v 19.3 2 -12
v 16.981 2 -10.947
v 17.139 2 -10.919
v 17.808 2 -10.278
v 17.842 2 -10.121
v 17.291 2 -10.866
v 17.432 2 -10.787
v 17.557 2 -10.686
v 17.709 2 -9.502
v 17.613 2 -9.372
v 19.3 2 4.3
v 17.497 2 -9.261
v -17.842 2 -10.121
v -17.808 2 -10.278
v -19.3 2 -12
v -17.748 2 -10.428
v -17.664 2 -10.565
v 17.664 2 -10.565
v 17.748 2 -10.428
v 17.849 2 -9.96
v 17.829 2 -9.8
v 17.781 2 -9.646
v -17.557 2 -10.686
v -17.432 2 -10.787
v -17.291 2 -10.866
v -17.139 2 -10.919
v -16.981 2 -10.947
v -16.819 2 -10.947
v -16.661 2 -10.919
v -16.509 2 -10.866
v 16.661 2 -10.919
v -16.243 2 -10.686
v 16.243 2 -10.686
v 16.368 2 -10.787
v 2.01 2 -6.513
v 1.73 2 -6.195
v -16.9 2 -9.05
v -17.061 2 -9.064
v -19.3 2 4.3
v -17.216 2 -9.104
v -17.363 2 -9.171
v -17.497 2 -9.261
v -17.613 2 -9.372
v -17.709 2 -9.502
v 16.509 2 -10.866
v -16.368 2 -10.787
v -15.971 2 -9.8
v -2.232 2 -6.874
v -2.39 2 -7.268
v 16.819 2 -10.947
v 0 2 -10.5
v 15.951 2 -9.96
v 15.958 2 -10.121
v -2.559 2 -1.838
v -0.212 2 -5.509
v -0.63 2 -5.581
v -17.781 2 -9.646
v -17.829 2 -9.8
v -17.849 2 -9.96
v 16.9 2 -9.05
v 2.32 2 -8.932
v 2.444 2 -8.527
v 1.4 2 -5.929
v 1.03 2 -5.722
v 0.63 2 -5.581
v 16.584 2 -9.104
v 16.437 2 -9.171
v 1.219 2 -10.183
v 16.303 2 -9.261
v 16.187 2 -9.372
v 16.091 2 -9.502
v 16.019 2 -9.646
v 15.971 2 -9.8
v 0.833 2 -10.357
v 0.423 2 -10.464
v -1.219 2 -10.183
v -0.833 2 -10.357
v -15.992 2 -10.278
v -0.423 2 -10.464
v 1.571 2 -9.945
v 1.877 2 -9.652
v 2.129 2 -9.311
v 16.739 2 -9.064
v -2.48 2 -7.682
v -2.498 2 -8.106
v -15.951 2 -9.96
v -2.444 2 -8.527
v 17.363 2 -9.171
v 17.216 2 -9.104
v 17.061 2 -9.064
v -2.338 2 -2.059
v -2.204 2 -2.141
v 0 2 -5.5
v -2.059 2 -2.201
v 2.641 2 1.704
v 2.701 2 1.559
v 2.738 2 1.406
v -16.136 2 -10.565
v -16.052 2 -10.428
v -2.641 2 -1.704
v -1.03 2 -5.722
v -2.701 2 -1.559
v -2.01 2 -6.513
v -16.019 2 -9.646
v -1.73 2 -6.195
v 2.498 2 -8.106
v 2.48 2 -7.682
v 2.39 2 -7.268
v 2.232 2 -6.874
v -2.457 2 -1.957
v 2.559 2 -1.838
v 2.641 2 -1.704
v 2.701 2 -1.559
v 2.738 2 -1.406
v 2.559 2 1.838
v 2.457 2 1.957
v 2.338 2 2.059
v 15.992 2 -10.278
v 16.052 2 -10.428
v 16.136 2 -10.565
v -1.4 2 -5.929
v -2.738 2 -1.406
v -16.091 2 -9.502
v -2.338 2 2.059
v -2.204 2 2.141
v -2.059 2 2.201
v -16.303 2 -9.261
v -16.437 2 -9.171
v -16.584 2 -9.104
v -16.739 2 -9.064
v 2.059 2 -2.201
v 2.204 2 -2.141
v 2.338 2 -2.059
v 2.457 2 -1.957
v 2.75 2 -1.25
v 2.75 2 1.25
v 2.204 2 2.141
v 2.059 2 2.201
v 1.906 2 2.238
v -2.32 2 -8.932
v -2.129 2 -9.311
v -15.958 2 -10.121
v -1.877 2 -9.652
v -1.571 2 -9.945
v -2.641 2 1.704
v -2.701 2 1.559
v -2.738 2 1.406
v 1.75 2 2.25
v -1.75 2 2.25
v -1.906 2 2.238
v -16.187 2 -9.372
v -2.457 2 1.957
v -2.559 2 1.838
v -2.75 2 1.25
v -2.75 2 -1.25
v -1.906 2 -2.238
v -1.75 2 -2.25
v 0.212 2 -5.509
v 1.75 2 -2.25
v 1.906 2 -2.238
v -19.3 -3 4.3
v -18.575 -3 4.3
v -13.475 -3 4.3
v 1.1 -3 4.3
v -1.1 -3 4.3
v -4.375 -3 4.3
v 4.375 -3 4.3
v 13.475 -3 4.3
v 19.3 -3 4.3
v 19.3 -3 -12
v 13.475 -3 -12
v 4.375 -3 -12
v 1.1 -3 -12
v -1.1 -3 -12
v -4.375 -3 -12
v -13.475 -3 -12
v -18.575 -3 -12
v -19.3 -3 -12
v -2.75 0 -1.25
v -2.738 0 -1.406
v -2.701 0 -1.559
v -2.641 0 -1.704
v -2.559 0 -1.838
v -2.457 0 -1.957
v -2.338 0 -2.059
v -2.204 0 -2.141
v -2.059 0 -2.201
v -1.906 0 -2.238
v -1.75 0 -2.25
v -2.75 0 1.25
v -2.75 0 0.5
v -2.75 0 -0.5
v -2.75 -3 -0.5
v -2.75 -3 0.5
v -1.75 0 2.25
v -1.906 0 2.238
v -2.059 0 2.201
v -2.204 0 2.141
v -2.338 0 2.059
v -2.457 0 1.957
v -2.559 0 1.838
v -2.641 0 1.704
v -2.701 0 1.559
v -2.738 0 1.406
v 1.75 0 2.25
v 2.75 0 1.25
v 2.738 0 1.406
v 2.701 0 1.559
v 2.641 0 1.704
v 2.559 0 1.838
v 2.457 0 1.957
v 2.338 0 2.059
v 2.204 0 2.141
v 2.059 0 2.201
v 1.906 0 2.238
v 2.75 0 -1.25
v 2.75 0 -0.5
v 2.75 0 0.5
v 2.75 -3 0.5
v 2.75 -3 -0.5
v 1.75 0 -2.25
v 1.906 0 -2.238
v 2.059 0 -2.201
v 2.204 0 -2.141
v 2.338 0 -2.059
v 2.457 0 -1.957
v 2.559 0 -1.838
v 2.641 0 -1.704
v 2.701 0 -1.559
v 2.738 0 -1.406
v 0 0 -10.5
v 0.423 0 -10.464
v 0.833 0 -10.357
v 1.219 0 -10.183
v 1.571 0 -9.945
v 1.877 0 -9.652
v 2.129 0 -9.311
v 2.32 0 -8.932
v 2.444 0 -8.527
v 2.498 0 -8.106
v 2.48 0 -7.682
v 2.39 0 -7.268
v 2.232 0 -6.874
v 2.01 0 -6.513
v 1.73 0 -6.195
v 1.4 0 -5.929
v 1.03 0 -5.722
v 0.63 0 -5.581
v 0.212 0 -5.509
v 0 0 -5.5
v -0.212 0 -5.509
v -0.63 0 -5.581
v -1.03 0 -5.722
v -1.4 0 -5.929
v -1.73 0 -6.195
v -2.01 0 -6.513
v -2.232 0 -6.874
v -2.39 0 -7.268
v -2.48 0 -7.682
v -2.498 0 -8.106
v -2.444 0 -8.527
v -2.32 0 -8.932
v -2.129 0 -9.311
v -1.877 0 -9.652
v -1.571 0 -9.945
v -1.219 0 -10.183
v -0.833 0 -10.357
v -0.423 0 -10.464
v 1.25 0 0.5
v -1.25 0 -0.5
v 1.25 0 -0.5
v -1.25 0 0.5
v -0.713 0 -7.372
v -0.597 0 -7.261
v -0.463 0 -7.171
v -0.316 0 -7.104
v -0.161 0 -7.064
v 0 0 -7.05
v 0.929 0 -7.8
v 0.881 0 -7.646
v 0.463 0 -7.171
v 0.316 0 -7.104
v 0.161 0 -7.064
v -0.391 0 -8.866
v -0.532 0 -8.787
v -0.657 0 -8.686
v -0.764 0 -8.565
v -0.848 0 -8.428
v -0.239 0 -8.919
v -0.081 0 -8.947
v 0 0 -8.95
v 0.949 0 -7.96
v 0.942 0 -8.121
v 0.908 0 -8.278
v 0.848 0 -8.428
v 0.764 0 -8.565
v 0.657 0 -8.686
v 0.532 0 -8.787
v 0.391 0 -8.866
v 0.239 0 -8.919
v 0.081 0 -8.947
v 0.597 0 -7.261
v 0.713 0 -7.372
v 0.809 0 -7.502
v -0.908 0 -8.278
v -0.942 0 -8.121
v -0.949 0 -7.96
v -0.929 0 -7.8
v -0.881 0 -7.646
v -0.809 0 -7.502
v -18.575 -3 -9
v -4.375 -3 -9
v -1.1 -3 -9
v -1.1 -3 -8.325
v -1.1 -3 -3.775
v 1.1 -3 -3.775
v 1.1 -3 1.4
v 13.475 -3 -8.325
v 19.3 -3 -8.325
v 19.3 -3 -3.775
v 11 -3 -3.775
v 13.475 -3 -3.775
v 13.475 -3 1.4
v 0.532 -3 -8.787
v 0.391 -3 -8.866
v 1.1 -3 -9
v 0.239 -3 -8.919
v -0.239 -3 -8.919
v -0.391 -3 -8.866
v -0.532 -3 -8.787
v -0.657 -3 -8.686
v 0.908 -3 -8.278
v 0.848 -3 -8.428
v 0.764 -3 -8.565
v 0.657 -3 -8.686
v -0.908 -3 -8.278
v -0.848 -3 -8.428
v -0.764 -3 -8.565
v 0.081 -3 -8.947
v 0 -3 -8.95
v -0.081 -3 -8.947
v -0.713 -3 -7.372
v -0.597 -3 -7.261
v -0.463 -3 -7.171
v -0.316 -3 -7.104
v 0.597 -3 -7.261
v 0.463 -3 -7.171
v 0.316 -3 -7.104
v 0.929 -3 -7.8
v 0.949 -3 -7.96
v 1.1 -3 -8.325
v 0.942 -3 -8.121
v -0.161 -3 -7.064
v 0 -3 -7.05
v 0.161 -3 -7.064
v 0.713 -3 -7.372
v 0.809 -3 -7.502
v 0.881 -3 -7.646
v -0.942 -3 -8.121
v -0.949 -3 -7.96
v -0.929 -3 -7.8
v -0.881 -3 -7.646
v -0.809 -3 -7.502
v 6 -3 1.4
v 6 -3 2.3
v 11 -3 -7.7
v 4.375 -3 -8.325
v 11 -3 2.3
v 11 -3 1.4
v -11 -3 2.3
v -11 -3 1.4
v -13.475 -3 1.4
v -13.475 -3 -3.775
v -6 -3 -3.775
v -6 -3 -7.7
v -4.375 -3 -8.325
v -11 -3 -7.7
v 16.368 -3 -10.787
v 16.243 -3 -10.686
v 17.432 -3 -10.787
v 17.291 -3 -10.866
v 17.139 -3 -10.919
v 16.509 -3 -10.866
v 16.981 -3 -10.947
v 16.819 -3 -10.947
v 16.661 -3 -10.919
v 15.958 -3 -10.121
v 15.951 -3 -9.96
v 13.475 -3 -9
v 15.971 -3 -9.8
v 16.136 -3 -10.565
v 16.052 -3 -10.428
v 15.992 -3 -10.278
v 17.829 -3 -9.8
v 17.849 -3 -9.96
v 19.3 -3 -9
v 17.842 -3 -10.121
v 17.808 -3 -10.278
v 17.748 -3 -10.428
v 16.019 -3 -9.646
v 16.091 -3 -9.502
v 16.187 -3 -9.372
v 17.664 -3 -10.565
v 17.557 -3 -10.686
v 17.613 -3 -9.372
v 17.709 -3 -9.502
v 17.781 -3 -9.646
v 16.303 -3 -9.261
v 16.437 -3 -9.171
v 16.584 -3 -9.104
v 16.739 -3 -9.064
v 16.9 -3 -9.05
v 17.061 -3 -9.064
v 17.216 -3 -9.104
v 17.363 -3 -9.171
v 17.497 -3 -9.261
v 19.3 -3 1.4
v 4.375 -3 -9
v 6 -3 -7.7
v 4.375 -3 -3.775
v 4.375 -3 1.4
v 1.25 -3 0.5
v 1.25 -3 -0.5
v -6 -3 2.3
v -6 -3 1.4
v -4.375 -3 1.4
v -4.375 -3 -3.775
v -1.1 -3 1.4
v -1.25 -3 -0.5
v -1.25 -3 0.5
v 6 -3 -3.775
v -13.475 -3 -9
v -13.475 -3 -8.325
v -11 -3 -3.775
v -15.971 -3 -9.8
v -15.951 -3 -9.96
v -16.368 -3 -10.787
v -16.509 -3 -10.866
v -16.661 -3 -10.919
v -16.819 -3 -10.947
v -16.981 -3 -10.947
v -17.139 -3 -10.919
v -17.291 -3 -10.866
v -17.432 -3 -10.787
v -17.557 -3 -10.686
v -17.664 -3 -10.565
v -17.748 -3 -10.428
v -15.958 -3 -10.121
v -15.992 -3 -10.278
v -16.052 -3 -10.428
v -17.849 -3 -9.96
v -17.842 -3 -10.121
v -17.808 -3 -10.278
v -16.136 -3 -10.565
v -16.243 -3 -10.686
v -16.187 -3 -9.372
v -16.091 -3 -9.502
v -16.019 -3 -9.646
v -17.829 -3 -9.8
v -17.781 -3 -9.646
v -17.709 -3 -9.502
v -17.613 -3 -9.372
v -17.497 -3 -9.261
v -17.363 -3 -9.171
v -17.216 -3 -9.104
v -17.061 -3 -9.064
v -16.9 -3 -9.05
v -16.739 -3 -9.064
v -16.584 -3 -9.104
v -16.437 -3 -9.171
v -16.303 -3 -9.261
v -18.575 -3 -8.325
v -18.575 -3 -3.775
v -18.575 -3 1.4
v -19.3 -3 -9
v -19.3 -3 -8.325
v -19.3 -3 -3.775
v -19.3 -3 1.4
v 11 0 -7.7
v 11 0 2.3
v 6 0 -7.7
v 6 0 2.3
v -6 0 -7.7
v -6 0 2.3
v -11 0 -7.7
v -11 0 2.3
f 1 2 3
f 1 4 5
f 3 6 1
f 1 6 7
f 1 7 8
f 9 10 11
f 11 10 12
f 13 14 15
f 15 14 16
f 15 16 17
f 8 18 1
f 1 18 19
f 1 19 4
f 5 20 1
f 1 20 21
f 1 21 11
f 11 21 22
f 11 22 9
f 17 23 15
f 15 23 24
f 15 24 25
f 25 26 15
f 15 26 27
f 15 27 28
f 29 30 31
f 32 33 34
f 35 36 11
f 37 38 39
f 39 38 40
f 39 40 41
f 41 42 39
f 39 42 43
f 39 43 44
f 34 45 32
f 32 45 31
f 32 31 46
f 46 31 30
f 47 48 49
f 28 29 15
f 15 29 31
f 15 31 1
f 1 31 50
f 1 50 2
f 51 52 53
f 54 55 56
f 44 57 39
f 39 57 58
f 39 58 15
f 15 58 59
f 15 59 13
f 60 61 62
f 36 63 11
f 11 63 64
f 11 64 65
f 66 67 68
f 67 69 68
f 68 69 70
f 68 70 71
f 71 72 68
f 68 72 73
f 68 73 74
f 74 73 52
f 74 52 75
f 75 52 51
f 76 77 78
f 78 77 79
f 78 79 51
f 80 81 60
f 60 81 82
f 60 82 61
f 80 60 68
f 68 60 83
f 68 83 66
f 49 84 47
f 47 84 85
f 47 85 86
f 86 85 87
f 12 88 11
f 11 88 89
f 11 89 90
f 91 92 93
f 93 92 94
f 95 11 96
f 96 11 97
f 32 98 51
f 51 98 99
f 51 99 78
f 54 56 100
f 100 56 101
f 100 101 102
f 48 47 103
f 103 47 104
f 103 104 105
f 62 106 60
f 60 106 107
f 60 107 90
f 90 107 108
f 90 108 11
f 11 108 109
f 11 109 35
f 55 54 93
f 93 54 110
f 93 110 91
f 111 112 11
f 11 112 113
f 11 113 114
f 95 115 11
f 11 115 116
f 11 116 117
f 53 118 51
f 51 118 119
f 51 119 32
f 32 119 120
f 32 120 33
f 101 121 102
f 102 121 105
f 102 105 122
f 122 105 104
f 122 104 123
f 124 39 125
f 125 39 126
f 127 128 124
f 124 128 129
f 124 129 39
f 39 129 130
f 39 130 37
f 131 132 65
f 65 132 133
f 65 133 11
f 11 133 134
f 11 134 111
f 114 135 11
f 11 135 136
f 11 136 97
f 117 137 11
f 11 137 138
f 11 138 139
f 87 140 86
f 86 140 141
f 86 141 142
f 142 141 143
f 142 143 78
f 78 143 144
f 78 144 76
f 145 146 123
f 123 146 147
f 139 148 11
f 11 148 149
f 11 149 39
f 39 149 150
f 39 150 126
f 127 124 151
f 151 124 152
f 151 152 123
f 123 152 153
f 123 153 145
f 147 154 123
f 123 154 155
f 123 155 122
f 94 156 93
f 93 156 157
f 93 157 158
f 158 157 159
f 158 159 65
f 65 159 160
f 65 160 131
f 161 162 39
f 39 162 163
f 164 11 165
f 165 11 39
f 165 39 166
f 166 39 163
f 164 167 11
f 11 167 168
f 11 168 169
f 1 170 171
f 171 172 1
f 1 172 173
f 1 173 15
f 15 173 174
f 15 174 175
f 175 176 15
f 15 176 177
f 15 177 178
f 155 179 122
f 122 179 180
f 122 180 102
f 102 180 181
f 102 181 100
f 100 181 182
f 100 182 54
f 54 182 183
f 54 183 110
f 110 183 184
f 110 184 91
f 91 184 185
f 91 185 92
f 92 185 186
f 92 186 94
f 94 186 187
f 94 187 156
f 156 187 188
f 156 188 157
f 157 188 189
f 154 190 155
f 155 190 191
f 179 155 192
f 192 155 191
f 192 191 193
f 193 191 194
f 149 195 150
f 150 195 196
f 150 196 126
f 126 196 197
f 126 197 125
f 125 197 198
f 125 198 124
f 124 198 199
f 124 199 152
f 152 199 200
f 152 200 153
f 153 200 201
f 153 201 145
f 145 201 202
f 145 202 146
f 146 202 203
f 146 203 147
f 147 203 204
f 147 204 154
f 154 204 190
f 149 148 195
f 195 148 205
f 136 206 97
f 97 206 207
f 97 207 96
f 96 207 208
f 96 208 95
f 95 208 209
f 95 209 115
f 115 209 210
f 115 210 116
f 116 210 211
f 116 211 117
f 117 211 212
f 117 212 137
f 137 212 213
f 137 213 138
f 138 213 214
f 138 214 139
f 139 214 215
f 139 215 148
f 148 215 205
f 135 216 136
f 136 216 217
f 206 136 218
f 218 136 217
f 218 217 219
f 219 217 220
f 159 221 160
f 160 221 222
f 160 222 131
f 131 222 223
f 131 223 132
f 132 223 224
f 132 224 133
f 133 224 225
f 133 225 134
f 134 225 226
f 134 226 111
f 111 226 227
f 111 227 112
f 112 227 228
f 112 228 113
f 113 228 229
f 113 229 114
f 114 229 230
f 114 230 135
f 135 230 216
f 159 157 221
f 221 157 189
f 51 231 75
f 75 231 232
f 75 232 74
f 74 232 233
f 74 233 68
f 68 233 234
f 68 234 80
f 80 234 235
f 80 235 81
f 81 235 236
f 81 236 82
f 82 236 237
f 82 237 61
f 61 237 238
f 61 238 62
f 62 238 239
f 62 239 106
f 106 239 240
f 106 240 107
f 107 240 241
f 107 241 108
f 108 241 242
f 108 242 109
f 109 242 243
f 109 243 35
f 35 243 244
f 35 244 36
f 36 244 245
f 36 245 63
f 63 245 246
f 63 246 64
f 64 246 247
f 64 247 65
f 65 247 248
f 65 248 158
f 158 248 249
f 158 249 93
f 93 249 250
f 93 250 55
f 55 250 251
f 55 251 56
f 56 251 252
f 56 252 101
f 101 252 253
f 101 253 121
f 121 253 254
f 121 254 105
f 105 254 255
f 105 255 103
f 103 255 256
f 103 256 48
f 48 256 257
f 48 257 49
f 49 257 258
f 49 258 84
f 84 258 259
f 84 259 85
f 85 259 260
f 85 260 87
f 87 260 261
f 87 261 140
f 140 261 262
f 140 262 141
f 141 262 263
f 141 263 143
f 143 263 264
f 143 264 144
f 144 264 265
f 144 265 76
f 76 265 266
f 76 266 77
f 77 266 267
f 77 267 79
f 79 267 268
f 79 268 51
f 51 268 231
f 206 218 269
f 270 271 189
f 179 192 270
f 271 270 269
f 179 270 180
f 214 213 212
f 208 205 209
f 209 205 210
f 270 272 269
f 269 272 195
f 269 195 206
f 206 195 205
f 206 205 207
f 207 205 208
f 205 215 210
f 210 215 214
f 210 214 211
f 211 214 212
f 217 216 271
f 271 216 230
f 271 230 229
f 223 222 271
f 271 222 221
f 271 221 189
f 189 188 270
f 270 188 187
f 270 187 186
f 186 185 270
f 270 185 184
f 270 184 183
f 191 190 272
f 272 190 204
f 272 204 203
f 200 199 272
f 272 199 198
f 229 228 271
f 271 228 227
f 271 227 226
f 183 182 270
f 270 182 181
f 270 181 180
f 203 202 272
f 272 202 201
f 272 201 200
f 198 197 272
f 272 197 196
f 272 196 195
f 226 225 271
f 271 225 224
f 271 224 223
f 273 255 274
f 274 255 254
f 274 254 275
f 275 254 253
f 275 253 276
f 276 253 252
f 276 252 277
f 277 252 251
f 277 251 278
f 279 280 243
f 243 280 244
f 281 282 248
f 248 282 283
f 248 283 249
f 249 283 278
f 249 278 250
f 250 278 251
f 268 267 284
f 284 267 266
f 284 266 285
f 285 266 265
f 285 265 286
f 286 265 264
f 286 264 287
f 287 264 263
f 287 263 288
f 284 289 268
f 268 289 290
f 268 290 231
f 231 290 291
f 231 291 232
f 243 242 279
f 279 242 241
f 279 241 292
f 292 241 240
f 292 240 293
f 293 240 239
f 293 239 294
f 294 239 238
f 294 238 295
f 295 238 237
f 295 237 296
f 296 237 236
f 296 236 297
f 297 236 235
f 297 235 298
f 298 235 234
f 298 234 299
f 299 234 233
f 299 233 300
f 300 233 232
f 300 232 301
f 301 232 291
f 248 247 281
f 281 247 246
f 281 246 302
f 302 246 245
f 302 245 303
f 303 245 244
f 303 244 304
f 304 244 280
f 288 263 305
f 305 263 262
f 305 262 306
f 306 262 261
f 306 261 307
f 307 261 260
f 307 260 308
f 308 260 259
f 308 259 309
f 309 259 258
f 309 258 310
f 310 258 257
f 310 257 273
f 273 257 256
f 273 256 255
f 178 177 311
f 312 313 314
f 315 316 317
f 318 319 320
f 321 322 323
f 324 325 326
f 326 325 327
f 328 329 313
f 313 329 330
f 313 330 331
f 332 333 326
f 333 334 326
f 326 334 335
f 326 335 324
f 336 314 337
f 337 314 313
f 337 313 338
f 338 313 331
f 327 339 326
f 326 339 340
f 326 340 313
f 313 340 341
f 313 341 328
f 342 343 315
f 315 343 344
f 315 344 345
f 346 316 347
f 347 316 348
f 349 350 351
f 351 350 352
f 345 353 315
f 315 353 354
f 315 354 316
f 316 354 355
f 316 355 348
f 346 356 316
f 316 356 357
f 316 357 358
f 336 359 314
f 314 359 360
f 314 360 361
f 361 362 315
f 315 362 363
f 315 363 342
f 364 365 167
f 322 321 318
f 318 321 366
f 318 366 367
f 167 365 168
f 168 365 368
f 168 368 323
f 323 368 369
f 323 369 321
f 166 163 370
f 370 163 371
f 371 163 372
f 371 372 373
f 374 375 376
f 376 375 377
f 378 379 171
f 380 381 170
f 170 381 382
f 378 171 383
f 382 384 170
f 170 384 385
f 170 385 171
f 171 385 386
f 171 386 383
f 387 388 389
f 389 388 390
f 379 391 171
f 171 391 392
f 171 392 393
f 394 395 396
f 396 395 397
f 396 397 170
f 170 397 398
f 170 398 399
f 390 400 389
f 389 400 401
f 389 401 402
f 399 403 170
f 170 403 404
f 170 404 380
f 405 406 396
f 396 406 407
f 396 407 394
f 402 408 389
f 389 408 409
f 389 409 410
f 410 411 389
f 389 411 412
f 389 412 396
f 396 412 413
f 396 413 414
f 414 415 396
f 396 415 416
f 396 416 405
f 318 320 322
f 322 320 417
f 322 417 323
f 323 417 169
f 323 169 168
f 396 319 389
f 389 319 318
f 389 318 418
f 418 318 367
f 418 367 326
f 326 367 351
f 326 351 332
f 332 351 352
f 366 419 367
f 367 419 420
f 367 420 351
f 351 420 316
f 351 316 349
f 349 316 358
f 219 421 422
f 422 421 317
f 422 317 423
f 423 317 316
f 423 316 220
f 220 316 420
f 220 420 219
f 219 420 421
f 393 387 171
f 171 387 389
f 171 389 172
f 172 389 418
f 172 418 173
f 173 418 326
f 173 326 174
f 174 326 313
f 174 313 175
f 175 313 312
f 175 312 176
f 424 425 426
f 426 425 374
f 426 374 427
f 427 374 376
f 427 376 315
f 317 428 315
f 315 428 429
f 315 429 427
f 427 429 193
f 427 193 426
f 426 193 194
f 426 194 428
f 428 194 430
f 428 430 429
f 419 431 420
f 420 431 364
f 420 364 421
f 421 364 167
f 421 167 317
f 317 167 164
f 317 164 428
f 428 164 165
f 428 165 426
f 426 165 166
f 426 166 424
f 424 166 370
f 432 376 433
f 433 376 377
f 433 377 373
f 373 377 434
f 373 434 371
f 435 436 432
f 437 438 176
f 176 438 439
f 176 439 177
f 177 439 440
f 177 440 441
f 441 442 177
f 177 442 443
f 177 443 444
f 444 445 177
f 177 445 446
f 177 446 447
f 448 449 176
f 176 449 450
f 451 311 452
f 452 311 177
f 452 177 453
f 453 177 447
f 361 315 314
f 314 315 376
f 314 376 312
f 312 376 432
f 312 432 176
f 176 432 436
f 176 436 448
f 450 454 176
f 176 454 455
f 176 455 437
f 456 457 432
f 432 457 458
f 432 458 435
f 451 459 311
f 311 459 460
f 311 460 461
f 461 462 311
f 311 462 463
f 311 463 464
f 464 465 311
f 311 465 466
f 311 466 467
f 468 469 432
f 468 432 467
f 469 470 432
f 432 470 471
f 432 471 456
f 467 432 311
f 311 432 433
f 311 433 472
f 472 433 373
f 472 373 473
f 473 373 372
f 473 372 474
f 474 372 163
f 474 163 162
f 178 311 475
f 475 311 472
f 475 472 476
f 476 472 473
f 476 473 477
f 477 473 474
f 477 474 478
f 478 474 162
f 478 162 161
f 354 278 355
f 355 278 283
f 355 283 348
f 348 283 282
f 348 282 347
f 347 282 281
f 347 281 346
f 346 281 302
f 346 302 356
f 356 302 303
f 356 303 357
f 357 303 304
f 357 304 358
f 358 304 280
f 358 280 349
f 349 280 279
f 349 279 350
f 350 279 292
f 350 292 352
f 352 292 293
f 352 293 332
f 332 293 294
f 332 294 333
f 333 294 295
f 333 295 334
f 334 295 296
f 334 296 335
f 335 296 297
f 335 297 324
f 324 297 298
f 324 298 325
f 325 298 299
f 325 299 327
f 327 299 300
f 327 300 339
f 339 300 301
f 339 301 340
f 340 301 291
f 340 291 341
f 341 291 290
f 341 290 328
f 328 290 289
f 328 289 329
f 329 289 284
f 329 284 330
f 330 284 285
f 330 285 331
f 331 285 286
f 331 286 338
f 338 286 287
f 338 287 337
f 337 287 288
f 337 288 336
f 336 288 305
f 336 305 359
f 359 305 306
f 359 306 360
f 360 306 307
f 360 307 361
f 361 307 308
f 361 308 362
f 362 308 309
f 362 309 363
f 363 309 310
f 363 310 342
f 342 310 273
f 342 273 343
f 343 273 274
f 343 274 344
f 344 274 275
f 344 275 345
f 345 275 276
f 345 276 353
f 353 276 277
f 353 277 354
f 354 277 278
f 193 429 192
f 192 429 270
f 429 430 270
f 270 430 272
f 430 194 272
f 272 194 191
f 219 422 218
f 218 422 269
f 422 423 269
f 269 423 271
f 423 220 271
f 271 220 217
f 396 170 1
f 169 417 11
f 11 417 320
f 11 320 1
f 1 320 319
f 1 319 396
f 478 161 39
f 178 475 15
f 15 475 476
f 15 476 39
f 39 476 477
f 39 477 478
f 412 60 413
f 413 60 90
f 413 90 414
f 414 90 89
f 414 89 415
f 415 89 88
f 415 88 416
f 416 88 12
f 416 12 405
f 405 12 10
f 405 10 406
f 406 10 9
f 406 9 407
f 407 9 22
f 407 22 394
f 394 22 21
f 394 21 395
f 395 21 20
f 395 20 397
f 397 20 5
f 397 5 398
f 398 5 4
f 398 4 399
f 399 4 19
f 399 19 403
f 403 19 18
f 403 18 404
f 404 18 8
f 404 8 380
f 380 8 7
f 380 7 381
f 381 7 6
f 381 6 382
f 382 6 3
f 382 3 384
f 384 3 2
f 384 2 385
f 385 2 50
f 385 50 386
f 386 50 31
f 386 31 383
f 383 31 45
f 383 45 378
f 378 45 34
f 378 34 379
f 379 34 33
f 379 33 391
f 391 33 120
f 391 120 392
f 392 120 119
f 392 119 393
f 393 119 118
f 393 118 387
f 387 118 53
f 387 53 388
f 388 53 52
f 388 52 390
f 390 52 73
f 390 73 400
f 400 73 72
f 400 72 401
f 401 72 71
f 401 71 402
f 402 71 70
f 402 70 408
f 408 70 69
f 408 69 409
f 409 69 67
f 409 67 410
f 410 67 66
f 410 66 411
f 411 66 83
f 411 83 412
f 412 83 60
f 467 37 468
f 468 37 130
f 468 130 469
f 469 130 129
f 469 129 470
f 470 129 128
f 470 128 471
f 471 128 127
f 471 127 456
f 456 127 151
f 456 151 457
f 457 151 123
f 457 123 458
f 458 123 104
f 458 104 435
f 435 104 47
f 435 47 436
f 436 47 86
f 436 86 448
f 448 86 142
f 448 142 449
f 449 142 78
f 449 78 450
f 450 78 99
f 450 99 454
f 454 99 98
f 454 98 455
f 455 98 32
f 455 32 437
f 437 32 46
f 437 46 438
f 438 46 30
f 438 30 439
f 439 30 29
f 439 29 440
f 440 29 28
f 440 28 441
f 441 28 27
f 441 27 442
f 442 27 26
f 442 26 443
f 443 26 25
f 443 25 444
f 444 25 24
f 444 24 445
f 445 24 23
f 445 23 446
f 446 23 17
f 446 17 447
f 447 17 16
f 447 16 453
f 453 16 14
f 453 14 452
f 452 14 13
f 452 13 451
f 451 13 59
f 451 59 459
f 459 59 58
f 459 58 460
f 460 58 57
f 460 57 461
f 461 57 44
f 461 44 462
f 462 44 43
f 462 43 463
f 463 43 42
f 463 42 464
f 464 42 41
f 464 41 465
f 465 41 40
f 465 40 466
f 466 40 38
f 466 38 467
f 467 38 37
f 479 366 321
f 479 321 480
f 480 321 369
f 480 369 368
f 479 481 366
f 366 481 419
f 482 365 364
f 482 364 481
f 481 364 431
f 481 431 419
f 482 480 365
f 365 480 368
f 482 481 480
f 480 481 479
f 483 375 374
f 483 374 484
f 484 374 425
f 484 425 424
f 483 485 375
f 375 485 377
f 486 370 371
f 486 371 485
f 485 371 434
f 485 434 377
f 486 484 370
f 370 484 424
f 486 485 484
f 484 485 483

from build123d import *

# Parameters (mm, degrees)
SKETCH_1_W          = 10
SKETCH_1_H          = 16.3
SKETCH_1_R          = 2.5
EXTRUDE_1_DEPTH     = 2
SKETCH_3_W          = 10
SKETCH_3_H          = 16.3
SKETCH_3_R          = 0.95
SKETCH_3_W_2        = 1.5
SKETCH_3_H_2        = 1
EXTRUDE_2_DEPTH     = 3
SKETCH_4_W          = 14.3
SKETCH_4_H          = 16.3
EXTRUDE_3_DEPTH     = 5
SKETCH_5_R          = 0.95
CUT_EXTRUDE_1_DEPTH = 5
SKETCH_6_W          = 5
SKETCH_6_H          = 10
CUT_EXTRUDE_2_DEPTH = 3


with BuildPart() as part:
    # 草图1 → 凸台-拉伸1 (new body)
    with BuildSketch(Plane(origin=(0, 0, 0), x_dir=(1, 0, 0), z_dir=(0, 1, 0))):
        with Locations((0, 3.85)):
            Rectangle(SKETCH_1_W, SKETCH_1_H)
        with Locations(Location((0, 8, 0), (0, 0, 270))):
            Circle(SKETCH_1_R, mode=Mode.SUBTRACT)
        with BuildLine():
            Line((-1.75, 2.25), (1.75, 2.25))
            ThreePointArc((1.75, 2.25), (2.457106781, 1.957106781), (2.75, 1.25))
            Line((2.75, 1.25), (2.75, -1.25))
            ThreePointArc((2.75, -1.25), (2.457106781, -1.957106781), (1.75, -2.25))
            Line((1.75, -2.25), (-1.75, -2.25))
            ThreePointArc((-1.75, -2.25), (-2.457106781, -1.957106781), (-2.75, -1.25))
            Line((-2.75, -1.25), (-2.75, 1.25))
            ThreePointArc((-2.75, 1.25), (-2.457106781, 1.957106781), (-1.75, 2.25))
        make_face(mode=Mode.SUBTRACT)
    extrude(amount=EXTRUDE_1_DEPTH)

    # 草图3 → 凸台-拉伸2 (add)
    with BuildSketch(Plane.XZ):
        with Locations((0, -3.85)):
            Rectangle(SKETCH_3_W, SKETCH_3_H)
        with Locations(Location((0, -8, 0), (0, 0, 270))):
            Circle(SKETCH_3_R, mode=Mode.SUBTRACT)
        with Locations((-2, 0)):
            Rectangle(SKETCH_3_W_2, SKETCH_3_H_2, mode=Mode.SUBTRACT)
        with Locations((2, 0)):
            Rectangle(SKETCH_3_W_2, SKETCH_3_H_2, mode=Mode.SUBTRACT)
    extrude(amount=EXTRUDE_2_DEPTH)

    # 草图4 → 凸台-拉伸3 (add)
    with BuildSketch(Plane.XZ.offset(3)):
        with Locations((12.15, -3.85)):
            Rectangle(SKETCH_4_W, SKETCH_4_H)
        with Locations((-12.15, -3.85)):
            Rectangle(SKETCH_4_W, SKETCH_4_H)
    extrude(amount=-EXTRUDE_3_DEPTH)

    # 草图5 → 切除-拉伸1 (cut)
    with BuildSketch(Plane(origin=(0, 2, 0), x_dir=(1, 0, 0), z_dir=(0, 1, 0))):
        with Locations(Location((-16.9, 10, 0), (0, 0, 270))):
            Circle(SKETCH_5_R)
        with Locations(Location((16.9, 10, 0), (0, 0, 270))):
            Circle(SKETCH_5_R)
    extrude(amount=-CUT_EXTRUDE_1_DEPTH, mode=Mode.SUBTRACT)

    # 草图6 → 切除-拉伸2 (cut)
    with BuildSketch(Plane.XZ.offset(3)):
        with Locations((-8.5, -2.7)):
            Rectangle(SKETCH_6_W, SKETCH_6_H)
        with Locations((8.5, -2.7)):
            Rectangle(SKETCH_6_W, SKETCH_6_H)
    extrude(amount=-CUT_EXTRUDE_2_DEPTH, mode=Mode.SUBTRACT)


solid = part.part
